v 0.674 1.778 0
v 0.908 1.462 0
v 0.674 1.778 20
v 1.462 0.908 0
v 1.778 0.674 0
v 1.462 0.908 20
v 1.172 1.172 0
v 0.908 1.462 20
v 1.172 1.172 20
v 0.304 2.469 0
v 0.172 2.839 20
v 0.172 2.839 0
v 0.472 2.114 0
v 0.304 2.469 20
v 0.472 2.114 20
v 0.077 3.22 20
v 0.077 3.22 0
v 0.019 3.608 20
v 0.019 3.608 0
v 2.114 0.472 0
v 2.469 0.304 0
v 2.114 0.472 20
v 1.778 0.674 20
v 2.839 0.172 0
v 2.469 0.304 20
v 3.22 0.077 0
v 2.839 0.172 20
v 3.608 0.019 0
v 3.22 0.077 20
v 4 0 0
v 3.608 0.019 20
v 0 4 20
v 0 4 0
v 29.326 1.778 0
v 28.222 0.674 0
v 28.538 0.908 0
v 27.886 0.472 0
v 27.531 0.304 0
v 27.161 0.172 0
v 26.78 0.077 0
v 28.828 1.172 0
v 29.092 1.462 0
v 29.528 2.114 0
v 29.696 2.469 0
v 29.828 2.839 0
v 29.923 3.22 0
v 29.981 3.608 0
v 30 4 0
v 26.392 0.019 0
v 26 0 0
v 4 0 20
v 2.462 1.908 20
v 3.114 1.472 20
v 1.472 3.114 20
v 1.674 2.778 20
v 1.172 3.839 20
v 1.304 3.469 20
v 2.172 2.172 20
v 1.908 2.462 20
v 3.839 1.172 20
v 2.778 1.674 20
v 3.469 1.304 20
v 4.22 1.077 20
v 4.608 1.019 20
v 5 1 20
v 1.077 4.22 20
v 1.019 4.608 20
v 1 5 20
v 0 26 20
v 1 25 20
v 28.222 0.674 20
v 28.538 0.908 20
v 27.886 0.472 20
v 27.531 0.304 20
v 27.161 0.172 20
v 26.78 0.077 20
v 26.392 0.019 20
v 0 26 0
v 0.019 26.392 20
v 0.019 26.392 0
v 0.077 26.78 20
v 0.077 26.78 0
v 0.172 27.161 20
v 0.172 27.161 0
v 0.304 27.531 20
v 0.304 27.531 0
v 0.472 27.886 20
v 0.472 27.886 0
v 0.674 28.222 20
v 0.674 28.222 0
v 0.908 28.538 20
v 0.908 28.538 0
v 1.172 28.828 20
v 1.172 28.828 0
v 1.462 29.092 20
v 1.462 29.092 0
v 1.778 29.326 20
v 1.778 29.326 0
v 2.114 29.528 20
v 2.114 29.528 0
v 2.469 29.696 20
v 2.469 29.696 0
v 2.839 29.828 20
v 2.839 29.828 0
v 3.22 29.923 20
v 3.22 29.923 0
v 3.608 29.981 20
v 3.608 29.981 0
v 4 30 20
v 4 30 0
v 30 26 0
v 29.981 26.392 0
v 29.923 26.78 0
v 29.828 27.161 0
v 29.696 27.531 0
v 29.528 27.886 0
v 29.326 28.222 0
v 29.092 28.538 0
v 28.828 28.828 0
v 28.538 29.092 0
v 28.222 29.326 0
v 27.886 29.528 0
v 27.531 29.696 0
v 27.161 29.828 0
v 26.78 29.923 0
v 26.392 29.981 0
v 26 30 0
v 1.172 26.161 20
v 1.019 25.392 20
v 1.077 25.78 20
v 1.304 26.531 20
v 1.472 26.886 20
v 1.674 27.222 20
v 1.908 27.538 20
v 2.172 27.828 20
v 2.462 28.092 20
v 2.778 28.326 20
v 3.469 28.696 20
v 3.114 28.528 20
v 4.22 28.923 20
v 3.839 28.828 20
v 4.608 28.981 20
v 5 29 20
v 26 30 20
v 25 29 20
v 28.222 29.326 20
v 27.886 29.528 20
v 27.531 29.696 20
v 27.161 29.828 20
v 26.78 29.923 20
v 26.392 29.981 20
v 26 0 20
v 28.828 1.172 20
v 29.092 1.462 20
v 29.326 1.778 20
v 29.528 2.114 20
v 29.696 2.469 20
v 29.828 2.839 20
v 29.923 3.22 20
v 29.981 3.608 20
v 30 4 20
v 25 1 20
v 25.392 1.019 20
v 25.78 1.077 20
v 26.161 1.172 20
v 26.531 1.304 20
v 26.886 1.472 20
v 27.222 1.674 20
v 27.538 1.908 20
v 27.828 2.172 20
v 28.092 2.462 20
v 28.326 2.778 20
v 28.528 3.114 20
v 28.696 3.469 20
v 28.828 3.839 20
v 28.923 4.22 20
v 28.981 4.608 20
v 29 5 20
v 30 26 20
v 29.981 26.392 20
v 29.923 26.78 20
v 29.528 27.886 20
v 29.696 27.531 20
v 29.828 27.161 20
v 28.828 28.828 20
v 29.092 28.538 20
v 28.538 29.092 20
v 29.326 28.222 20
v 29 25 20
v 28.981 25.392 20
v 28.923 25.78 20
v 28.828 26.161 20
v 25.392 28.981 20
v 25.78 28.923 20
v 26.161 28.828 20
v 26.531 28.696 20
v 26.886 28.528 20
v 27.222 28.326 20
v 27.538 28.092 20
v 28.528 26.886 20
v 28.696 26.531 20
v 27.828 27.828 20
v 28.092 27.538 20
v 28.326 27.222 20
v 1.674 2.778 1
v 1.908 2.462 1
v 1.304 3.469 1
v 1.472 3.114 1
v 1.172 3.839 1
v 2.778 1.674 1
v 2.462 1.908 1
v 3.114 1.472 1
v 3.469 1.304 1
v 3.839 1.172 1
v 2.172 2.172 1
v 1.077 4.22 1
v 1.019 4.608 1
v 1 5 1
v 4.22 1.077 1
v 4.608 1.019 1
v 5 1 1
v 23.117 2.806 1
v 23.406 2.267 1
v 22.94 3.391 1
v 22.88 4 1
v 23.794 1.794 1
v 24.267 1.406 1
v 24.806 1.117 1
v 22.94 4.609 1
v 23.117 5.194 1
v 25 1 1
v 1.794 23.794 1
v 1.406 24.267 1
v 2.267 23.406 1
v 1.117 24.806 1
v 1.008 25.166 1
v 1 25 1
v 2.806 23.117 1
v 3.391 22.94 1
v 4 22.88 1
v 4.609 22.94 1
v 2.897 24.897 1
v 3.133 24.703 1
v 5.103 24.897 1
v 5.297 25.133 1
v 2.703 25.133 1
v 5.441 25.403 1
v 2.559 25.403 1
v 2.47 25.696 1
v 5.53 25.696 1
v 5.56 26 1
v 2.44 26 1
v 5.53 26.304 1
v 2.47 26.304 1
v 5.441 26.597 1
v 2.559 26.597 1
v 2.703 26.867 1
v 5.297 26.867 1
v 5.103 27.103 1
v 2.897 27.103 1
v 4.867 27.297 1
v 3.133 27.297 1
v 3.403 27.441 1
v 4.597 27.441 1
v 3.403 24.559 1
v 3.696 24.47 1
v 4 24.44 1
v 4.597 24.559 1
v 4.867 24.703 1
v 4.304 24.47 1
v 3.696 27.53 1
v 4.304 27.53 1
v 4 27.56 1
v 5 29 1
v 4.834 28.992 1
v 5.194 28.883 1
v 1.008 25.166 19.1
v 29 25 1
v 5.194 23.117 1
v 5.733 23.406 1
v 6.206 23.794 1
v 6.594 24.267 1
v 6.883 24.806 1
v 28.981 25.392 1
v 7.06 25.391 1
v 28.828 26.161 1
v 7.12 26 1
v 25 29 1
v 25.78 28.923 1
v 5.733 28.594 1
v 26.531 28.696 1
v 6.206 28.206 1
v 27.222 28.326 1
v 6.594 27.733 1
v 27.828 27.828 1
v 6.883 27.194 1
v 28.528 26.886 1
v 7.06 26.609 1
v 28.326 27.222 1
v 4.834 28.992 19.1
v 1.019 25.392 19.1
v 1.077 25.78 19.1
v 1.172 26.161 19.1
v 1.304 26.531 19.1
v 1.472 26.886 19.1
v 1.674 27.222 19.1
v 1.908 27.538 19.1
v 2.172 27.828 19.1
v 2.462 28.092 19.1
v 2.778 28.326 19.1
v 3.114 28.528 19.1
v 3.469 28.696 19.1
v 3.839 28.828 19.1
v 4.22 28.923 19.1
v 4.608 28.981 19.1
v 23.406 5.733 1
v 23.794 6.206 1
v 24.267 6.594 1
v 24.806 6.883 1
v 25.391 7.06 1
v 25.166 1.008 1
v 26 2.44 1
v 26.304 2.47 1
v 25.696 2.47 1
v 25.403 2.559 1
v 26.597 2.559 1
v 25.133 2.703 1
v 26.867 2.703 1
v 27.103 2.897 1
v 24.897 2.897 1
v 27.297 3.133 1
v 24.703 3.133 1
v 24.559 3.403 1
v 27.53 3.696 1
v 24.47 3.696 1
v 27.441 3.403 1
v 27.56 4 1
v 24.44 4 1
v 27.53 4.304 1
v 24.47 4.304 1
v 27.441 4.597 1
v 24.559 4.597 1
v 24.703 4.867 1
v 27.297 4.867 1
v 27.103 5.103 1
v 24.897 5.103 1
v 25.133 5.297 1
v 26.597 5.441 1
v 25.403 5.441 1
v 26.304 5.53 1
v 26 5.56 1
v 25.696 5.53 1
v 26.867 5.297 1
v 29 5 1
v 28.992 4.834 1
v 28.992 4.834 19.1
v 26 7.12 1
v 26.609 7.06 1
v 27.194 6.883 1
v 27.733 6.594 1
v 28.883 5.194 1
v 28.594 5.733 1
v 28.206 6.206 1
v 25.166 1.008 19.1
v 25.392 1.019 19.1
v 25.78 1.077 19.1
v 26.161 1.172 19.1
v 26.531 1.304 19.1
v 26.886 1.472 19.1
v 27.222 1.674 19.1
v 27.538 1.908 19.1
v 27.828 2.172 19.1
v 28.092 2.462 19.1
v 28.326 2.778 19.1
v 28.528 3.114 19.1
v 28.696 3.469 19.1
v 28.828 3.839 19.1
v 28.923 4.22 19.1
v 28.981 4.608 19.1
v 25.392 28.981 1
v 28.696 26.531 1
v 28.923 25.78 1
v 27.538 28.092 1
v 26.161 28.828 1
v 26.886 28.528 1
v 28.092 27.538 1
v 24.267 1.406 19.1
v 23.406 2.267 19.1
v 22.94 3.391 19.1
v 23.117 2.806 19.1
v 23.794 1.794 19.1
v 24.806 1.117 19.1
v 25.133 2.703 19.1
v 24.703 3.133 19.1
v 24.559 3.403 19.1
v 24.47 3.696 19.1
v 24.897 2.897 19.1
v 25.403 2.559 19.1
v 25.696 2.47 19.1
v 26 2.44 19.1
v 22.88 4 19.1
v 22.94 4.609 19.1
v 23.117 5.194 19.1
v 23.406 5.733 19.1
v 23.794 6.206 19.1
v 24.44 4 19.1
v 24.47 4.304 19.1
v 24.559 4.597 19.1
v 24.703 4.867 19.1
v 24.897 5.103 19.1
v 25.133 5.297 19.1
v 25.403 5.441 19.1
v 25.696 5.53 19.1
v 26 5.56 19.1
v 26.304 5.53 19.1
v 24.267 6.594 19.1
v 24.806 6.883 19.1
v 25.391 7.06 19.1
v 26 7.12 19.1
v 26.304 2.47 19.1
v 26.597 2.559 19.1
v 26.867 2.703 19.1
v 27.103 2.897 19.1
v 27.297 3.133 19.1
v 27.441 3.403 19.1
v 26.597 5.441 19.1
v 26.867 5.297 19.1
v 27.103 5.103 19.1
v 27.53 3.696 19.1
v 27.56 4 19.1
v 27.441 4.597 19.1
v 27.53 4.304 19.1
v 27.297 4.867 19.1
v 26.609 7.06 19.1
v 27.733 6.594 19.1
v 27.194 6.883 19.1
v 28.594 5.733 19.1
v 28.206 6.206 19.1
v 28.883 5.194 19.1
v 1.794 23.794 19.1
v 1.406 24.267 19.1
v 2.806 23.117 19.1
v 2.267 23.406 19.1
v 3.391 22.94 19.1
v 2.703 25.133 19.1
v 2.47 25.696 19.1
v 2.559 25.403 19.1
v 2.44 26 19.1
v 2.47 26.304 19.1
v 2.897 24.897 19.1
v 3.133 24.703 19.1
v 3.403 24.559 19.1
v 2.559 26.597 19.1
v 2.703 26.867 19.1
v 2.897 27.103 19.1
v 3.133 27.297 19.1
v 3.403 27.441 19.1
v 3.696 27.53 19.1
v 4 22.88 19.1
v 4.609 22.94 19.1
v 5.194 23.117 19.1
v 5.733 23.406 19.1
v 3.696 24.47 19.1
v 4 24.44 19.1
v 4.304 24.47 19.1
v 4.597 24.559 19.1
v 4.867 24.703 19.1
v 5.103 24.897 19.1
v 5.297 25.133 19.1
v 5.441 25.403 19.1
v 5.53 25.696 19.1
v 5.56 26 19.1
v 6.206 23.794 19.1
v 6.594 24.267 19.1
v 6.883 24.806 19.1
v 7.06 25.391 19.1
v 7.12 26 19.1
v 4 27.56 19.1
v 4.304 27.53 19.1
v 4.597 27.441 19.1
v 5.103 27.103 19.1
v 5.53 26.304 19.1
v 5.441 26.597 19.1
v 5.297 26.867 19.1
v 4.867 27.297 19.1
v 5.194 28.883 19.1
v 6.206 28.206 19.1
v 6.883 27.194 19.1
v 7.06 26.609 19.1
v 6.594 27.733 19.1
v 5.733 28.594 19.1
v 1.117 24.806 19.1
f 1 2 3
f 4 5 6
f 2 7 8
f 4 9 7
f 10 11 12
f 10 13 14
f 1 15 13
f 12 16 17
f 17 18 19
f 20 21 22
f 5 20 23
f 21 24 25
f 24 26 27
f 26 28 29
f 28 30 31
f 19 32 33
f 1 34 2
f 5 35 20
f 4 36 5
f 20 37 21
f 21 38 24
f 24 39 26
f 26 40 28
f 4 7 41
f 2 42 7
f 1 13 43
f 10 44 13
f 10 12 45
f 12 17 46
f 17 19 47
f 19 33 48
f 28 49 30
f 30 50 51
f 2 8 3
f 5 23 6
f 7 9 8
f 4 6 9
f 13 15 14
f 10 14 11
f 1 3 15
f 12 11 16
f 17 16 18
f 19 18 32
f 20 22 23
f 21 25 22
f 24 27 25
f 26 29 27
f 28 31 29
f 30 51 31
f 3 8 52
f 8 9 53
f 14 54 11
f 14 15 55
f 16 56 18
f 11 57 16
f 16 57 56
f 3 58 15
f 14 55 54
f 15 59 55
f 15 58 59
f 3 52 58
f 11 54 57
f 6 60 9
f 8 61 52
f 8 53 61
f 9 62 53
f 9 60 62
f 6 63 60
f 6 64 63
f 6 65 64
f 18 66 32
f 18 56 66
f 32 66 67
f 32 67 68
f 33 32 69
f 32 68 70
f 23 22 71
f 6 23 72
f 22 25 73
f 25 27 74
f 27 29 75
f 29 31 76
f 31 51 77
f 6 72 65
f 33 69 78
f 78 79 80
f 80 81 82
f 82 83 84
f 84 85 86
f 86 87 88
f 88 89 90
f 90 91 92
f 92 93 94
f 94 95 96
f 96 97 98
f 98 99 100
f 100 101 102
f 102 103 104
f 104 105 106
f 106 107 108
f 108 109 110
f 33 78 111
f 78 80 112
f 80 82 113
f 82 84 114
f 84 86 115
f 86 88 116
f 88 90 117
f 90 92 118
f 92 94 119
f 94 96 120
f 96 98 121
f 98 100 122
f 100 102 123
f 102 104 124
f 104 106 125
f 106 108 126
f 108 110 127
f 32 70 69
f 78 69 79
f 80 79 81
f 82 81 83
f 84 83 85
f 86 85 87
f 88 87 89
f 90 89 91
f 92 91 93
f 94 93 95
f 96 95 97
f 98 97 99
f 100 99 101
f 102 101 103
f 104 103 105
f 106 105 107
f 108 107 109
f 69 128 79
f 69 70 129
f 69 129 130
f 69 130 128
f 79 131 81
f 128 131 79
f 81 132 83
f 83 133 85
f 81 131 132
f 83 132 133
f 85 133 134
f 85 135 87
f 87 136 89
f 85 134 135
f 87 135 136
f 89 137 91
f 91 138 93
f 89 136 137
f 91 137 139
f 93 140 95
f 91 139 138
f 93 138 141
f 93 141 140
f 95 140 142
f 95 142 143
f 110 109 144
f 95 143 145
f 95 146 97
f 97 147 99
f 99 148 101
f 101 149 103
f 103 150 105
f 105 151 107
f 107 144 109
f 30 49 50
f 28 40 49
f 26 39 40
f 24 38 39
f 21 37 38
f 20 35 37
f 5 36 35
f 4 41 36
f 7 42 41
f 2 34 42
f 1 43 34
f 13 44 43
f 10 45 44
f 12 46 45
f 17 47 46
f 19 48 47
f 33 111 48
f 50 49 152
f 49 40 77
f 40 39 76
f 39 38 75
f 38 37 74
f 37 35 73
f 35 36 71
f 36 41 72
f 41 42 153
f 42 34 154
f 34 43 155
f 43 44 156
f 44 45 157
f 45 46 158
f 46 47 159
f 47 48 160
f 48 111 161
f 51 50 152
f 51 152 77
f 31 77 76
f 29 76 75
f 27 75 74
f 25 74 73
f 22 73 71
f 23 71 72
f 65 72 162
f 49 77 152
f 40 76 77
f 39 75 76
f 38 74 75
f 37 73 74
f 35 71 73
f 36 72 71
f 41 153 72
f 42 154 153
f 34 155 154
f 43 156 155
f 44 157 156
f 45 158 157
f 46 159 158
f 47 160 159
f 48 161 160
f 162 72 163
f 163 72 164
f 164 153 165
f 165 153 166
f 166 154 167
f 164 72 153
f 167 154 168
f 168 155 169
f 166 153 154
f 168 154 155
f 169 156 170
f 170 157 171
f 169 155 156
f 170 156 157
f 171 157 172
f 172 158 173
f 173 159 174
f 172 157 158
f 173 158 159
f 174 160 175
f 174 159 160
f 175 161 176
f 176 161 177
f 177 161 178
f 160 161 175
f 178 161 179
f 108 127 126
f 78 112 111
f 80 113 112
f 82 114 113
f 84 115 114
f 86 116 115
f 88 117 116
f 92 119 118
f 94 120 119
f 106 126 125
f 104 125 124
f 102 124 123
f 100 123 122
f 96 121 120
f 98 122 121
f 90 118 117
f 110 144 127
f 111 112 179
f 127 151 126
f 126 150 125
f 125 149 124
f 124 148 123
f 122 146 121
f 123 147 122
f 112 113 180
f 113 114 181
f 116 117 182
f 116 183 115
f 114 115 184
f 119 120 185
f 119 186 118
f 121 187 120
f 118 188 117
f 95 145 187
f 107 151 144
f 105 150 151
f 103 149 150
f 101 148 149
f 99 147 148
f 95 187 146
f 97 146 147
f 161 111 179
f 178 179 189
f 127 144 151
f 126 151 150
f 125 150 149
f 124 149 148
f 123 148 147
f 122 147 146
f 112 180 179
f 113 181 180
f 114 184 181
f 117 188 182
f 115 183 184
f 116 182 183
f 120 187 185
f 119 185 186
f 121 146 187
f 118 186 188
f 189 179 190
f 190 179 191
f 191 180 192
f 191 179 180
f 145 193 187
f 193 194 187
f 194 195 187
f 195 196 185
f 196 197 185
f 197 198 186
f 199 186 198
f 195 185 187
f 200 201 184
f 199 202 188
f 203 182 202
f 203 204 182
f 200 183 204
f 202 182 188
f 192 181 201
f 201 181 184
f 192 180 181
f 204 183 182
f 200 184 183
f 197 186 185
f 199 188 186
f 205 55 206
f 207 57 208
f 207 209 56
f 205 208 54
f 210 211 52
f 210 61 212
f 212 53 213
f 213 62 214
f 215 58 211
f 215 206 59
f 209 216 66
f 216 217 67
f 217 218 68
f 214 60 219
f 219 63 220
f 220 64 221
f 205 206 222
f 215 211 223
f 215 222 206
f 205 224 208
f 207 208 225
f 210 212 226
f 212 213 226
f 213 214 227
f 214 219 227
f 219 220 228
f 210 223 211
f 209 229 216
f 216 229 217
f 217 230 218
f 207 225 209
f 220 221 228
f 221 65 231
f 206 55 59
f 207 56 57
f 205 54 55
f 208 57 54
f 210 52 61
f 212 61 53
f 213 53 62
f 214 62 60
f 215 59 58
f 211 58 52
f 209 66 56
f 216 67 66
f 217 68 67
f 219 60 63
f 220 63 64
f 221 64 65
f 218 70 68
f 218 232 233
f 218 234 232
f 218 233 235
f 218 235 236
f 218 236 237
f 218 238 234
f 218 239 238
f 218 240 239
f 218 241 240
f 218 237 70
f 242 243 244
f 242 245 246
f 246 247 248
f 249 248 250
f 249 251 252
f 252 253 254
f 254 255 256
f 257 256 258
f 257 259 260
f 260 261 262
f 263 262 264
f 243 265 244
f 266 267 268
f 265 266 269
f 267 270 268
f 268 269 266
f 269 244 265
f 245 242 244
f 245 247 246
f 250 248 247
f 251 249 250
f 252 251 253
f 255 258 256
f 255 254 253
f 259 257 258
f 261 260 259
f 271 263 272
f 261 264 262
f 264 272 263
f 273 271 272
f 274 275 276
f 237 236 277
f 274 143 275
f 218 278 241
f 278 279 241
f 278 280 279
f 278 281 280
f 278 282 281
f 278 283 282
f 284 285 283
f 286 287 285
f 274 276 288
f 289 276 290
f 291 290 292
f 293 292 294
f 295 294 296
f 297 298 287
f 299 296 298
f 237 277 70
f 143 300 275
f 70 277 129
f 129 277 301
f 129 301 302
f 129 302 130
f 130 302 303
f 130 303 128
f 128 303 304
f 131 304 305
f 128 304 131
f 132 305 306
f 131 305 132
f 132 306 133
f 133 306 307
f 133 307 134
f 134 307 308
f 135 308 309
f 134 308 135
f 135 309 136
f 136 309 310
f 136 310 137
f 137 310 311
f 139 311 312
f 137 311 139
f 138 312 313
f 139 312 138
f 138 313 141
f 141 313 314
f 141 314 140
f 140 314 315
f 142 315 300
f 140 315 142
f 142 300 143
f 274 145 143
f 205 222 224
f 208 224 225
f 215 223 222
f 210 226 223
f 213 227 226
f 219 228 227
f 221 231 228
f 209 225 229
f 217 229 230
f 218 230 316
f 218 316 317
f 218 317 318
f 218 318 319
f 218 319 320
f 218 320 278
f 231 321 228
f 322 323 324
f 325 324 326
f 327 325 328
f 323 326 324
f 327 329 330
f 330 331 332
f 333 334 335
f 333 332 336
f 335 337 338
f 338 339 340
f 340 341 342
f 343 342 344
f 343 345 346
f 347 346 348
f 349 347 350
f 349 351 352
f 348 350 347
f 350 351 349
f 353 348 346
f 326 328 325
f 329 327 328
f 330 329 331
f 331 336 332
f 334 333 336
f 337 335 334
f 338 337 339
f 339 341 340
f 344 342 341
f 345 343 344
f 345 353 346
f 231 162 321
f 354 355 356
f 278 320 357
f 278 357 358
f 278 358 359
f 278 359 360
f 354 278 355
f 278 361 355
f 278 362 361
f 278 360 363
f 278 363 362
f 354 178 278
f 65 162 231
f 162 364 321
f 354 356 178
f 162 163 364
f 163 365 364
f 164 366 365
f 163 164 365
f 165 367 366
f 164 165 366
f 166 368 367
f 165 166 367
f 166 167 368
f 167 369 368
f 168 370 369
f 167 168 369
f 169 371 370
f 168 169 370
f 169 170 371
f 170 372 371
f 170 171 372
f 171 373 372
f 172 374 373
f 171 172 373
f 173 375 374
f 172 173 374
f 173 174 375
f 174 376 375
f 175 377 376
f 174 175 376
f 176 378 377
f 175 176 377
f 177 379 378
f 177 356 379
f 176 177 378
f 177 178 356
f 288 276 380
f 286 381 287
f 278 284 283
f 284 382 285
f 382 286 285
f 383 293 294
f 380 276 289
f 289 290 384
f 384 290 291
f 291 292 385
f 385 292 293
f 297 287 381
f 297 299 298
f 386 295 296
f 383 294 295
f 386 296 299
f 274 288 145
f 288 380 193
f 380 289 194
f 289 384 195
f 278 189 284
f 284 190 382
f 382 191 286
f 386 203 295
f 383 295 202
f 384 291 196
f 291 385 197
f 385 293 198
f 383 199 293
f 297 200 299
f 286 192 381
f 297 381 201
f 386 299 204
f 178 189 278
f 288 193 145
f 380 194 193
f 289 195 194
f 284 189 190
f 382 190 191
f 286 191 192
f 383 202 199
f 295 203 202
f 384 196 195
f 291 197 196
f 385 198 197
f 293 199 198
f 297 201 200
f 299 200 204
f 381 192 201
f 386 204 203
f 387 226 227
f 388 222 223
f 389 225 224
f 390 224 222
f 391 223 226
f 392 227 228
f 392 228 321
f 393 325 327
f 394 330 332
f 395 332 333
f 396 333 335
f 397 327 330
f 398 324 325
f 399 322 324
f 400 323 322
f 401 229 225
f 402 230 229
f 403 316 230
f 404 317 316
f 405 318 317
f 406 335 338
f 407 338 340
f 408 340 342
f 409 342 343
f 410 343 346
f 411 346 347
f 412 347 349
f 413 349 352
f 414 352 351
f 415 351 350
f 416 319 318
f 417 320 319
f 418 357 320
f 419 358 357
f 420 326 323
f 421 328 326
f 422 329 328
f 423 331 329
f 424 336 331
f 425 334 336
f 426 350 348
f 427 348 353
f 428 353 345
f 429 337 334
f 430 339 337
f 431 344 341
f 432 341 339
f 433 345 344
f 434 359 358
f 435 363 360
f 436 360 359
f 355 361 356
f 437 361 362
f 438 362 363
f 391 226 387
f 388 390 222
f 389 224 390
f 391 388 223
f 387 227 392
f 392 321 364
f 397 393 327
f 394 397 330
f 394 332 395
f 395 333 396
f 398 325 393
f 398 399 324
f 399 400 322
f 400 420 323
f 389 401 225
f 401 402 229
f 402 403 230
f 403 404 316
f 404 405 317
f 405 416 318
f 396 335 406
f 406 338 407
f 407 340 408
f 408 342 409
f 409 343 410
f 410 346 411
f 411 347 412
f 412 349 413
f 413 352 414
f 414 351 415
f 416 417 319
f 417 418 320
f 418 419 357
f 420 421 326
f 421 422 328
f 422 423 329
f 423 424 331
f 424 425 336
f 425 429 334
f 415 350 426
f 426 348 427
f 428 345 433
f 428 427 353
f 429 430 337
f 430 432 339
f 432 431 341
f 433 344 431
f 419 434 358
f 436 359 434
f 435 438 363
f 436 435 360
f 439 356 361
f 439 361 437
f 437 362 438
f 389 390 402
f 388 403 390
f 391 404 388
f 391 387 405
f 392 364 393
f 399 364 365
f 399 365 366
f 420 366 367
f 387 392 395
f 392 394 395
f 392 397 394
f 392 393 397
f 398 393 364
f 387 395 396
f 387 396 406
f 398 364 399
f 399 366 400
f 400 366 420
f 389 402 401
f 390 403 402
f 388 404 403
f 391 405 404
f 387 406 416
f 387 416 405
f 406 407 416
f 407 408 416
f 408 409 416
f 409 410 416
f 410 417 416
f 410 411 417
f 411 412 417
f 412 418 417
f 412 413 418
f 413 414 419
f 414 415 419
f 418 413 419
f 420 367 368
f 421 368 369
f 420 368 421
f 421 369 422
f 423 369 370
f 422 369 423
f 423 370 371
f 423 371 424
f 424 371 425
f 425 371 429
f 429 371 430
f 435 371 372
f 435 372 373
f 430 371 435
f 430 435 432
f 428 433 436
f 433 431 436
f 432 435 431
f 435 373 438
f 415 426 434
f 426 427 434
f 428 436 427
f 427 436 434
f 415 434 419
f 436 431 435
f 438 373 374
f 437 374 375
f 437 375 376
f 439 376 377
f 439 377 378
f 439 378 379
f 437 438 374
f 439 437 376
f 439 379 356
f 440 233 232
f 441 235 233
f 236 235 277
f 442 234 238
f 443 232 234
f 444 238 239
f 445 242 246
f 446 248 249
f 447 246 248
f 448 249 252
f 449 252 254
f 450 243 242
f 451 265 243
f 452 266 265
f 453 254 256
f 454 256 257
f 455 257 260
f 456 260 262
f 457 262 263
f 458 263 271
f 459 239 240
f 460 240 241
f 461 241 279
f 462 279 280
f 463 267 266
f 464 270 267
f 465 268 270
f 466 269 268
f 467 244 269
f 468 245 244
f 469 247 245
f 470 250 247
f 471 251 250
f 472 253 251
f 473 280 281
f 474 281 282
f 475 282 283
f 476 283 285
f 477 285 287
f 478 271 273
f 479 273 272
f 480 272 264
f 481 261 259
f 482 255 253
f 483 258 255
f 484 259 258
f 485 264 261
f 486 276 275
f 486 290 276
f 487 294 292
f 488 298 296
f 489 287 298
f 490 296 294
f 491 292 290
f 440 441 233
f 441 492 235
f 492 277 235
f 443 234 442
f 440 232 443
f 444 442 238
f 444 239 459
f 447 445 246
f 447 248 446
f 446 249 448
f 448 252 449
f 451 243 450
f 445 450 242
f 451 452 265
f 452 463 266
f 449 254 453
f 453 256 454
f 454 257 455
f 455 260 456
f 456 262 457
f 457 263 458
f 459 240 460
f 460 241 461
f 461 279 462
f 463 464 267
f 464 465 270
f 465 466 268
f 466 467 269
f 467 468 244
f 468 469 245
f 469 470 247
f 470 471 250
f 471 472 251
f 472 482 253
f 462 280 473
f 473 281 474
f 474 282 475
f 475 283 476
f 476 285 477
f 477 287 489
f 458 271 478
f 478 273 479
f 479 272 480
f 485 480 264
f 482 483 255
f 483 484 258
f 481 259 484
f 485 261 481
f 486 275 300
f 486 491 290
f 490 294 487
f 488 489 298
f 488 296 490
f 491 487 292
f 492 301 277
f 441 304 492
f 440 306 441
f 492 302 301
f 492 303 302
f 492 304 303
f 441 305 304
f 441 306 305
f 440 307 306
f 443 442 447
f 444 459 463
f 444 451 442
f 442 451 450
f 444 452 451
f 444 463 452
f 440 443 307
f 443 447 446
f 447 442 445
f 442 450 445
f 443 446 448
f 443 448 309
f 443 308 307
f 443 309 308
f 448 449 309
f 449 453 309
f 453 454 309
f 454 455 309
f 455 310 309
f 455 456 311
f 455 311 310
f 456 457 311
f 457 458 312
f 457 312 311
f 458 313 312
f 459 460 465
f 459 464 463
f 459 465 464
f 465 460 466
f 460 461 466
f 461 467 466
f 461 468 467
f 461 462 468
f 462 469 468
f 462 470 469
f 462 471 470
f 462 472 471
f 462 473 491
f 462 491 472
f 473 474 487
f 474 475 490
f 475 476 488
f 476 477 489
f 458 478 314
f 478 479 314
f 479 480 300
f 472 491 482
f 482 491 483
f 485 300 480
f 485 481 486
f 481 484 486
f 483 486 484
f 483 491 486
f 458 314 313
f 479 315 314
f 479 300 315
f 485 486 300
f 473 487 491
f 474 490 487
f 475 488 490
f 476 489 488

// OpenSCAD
// file: mixin.scad
board_length = 100;
board_width = 60;
regulator_length = 25;
regulator_width = 30;
board_leg_height = 16;
wall = 2;

enclosure_width = board_width + 0.5;
enclosure_length = 162;
enclosure_leg_height = 18 + wall;
enclosure_height = enclosure_leg_height;

tube_diameter = 16.4;
socket_diameter = 25;
lid_height = 3;
m3 = 3.12;

regulator_leg_height = 3;

module rounded_box(size = [10, 10, 5], r = 3) {
  translate([size[0] / 2, size[1] / 2, 0]) {
    linear_extrude(height=size[2]) {
      minkowski() {
        square([size[0] - 2 * r, size[1] - 2 * r], center=true);
        circle(r=r);
      }
    }
  }
}
// main file
include <mixin.scad>

$fn = 64;
wall = 1;

module board() {
  translate([4, 4, 0]) color("#b1a531") leg(board_leg_height);
  translate([board_width - 4, 4, 0]) color("#b1a531") leg(board_leg_height);
  translate([board_width - 4, board_length - 4, 0]) color("#b1a531") leg(board_leg_height);
  translate([4, board_length - 4, 0]) color("#b1a531") leg(board_leg_height);
}

module leg(leg_height) {
  difference() {
    color("#b1a531") cylinder(h=leg_height, d=6.24, $fn=32);
    cylinder(h=leg_height + 1, d=3.12, $fn=32);
  }
}

module tube() {
  translate([board_width / 2, 0, -1]) color("#d6a731")
      cylinder(h=45, d=tube_diameter, $fn=32);

  translate([board_width / 2 + 11.7, 0, -1]) color("#d6a731")
      cylinder(h=45, d=m3, $fn=32);

  translate([board_width / 2 - 11.7, 0, -1]) color("#d6a731")
      cylinder(h=45, d=m3, $fn=32);
}

module type_c_cutout() {
  hull() {
    translate(
      [-5, enclosure_length / 2 + 2.9, board_leg_height]
    )
      rotate([0, 90, 0]) cylinder(h=10, d=3.7, $fn=64);
    translate(
      [-5, enclosure_length / 2 - 2.9, board_leg_height]
    )
      rotate([0, 90, 0]) cylinder(h=10, d=3.7, $fn=64);
  }
}

module test() {
  enclosure_height = 20 - wall;
  enclosure_leg_height = 20 - wall;

  difference() {
    color("#2f2270") rounded_box(
        [
          30,
          30,
          enclosure_height + wall,
        ],
        r=4
      );
    translate([wall, wall, wall]) rounded_box(
        [30 - wall * 2, 30 - wall * 2, enclosure_height * 2], r=4
      );
  }
  enclosure_width = 30 - wall * 2;
  enclosure_length = 30 - wall * 2;

  translate([wall, wall, 0.1]) {
    translate([enclosure_width - 3, 3, 0]) color("#b1a531") leg(enclosure_leg_height);
    translate([3, enclosure_length - 3, 0]) color("#b1a531") leg(enclosure_leg_height);
  }
}

test();
